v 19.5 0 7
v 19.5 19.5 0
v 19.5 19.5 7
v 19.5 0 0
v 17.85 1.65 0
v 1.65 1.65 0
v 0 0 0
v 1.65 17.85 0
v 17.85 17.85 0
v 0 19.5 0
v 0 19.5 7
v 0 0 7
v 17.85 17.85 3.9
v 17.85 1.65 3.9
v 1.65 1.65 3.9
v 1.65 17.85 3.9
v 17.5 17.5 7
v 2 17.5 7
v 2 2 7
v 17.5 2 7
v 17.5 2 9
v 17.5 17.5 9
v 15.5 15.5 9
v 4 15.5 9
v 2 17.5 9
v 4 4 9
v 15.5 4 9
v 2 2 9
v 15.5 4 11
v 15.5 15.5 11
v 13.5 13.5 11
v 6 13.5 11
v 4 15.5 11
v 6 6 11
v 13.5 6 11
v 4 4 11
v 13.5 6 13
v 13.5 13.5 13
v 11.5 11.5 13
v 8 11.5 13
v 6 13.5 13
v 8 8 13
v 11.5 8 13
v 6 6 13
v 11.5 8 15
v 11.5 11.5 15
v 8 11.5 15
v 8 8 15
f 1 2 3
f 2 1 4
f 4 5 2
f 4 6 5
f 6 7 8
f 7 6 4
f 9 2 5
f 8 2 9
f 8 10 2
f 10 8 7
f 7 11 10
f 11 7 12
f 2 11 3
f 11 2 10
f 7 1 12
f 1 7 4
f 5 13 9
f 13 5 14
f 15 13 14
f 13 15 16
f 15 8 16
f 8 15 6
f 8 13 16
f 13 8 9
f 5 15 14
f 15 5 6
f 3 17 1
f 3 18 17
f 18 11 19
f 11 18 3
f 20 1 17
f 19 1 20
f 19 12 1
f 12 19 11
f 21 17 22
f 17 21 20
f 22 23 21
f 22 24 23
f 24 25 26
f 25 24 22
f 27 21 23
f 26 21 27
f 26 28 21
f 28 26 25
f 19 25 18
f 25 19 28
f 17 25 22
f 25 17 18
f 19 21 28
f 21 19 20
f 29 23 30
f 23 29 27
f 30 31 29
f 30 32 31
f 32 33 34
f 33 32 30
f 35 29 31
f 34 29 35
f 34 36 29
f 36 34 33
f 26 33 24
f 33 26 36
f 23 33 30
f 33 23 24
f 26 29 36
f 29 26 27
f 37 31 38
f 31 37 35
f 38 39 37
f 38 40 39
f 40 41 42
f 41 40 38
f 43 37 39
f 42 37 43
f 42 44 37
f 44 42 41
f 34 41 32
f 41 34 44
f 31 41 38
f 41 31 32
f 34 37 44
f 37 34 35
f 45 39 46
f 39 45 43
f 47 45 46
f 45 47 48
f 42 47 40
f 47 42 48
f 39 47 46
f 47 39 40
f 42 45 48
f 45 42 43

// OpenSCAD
// file: CommonModules.scad
//    $$$$$$\   $$$$$$\   $$$$$$\  $$\   $$\ $$$$$$\ $$$$$$$\  $$$$$$$$\ 
//    $$  __$$\ $$  __$$\ $$  __$$\ $$ |  $$ |\_$$  _|$$  __$$\ $$  _____|
//    $$ /  $$ |$$ /  \__|$$ /  $$ |$$ |  $$ |  $$ |  $$ |  $$ |$$ |      
//    $$$$$$$$ |$$ |      $$ |  $$ |$$ |  $$ |  $$ |  $$$$$$$  |$$$$$\    
//    $$  __$$ |$$ |      $$ |  $$ |$$ |  $$ |  $$ |  $$  __$$< $$  __|   
//    $$ |  $$ |$$ |  $$\ $$ $$\$$ |$$ |  $$ |  $$ |  $$ |  $$ |$$ |      
//    $$ |  $$ |\$$$$$$  |\$$$$$$ / \$$$$$$  |$$$$$$\ $$ |  $$ |$$$$$$$$\ 
//    \__|  \__| \______/  \___$$$\  \______/ \______|\__|  \__|\________|
//                            \___|                                      
//      
//       Print and play - OpenScad project - by Bekkalizer and ChatGPT
// 
// This file is part of the Acquire stl project.
// Copyright (C) 2025 Bekkalizer
//
// Acquire stl project is free software: you can redistribute it and/or modify
// it under the terms of the GNU General Public License as published
// by the Free Software Foundation, either version 3 of the License,
// or (at your option) any later version.
//
// Acquire stl project is distributed in the hope that it will be useful,
// but WITHOUT ANY WARRANTY; without even the implied warranty of
// MERCHANTABILITY or FITNESS FOR A PARTICULAR PURPOSE. See the
// GNU General Public License for more details.
//
// You should have received a copy of the GNU General Public License
// along with this program. If not, see <https://www.gnu.org/licenses/>.

module cube_with_extruded_bottom( cube_size = [19.5, 19.5, 5] ) {
    //Main build script parameters:
    max_width = 19.2;
    top_lip = 2;
    top_height = 3;
    //Calculated hole size:
    inside_margins = 1;
    hole_width = max_width - 2 * (top_lip) + inside_margins;
    hole_height = top_height + inside_margins;
    
    hole_size = [hole_width, hole_width, hole_height]; // Hole dimensions (same height as cube)
    hole_offset = [(cube_size[0] - hole_size[0]) / 2, (cube_size[1] - hole_size[1]) / 2, -0.1]; // Centered on bottom
    difference() {
        // Main Cube
        cube(cube_size);
        
        // Hole Cube (subtracting from bottom)
        translate(hole_offset)
            cube(hole_size);
    }
}
// main file
//    $$$$$$\   $$$$$$\   $$$$$$\  $$\   $$\ $$$$$$\ $$$$$$$\  $$$$$$$$\ 
//    $$  __$$\ $$  __$$\ $$  __$$\ $$ |  $$ |\_$$  _|$$  __$$\ $$  _____|
//    $$ /  $$ |$$ /  \__|$$ /  $$ |$$ |  $$ |  $$ |  $$ |  $$ |$$ |      
//    $$$$$$$$ |$$ |      $$ |  $$ |$$ |  $$ |  $$ |  $$$$$$$  |$$$$$\    
//    $$  __$$ |$$ |      $$ |  $$ |$$ |  $$ |  $$ |  $$  __$$< $$  __|   
//    $$ |  $$ |$$ |  $$\ $$ $$\$$ |$$ |  $$ |  $$ |  $$ |  $$ |$$ |      
//    $$ |  $$ |\$$$$$$  |\$$$$$$ / \$$$$$$  |$$$$$$\ $$ |  $$ |$$$$$$$$\ 
//    \__|  \__| \______/  \___$$$\  \______/ \______|\__|  \__|\________|
//                            \___|                                      
//      
//       Print and play - OpenScad project - by Bekkalizer and ChatGPT
// 
// This file is part of the Acquire stl project.
// Copyright (C) 2025 Bekkalizer
//
// Acquire stl project is free software: you can redistribute it and/or modify
// it under the terms of the GNU General Public License as published
// by the Free Software Foundation, either version 3 of the License,
// or (at your option) any later version.
//
// Acquire stl project is distributed in the hope that it will be useful,
// but WITHOUT ANY WARRANTY; without even the implied warranty of
// MERCHANTABILITY or FITNESS FOR A PARTICULAR PURPOSE. See the
// GNU General Public License for more details.
//
// You should have received a copy of the GNU General Public License
// along with this program. If not, see <https://www.gnu.org/licenses/>.

use <CommonModules.scad>

// ============== Parameters ==============
bottom_hotel = [19.5, 19.5, 5]; // Main cube dimensions
step_height_dimension = 2;
step_width_dimension = 2;
number_of_steps = 4;

// Draw the main hotel lobby 
cube_with_extruded_bottom(bottom_hotel);
for( i = [0 : number_of_steps] ) {
    step_height = step_height_dimension;
    step_width = step_width_dimension;
    translate([step_width*i,step_width * i,bottom_hotel[2] + step_height * i]) {
        cube([bottom_hotel[0]-step_width*2*i, bottom_hotel[1]-step_width*2*i, step_height]);
    }
}
